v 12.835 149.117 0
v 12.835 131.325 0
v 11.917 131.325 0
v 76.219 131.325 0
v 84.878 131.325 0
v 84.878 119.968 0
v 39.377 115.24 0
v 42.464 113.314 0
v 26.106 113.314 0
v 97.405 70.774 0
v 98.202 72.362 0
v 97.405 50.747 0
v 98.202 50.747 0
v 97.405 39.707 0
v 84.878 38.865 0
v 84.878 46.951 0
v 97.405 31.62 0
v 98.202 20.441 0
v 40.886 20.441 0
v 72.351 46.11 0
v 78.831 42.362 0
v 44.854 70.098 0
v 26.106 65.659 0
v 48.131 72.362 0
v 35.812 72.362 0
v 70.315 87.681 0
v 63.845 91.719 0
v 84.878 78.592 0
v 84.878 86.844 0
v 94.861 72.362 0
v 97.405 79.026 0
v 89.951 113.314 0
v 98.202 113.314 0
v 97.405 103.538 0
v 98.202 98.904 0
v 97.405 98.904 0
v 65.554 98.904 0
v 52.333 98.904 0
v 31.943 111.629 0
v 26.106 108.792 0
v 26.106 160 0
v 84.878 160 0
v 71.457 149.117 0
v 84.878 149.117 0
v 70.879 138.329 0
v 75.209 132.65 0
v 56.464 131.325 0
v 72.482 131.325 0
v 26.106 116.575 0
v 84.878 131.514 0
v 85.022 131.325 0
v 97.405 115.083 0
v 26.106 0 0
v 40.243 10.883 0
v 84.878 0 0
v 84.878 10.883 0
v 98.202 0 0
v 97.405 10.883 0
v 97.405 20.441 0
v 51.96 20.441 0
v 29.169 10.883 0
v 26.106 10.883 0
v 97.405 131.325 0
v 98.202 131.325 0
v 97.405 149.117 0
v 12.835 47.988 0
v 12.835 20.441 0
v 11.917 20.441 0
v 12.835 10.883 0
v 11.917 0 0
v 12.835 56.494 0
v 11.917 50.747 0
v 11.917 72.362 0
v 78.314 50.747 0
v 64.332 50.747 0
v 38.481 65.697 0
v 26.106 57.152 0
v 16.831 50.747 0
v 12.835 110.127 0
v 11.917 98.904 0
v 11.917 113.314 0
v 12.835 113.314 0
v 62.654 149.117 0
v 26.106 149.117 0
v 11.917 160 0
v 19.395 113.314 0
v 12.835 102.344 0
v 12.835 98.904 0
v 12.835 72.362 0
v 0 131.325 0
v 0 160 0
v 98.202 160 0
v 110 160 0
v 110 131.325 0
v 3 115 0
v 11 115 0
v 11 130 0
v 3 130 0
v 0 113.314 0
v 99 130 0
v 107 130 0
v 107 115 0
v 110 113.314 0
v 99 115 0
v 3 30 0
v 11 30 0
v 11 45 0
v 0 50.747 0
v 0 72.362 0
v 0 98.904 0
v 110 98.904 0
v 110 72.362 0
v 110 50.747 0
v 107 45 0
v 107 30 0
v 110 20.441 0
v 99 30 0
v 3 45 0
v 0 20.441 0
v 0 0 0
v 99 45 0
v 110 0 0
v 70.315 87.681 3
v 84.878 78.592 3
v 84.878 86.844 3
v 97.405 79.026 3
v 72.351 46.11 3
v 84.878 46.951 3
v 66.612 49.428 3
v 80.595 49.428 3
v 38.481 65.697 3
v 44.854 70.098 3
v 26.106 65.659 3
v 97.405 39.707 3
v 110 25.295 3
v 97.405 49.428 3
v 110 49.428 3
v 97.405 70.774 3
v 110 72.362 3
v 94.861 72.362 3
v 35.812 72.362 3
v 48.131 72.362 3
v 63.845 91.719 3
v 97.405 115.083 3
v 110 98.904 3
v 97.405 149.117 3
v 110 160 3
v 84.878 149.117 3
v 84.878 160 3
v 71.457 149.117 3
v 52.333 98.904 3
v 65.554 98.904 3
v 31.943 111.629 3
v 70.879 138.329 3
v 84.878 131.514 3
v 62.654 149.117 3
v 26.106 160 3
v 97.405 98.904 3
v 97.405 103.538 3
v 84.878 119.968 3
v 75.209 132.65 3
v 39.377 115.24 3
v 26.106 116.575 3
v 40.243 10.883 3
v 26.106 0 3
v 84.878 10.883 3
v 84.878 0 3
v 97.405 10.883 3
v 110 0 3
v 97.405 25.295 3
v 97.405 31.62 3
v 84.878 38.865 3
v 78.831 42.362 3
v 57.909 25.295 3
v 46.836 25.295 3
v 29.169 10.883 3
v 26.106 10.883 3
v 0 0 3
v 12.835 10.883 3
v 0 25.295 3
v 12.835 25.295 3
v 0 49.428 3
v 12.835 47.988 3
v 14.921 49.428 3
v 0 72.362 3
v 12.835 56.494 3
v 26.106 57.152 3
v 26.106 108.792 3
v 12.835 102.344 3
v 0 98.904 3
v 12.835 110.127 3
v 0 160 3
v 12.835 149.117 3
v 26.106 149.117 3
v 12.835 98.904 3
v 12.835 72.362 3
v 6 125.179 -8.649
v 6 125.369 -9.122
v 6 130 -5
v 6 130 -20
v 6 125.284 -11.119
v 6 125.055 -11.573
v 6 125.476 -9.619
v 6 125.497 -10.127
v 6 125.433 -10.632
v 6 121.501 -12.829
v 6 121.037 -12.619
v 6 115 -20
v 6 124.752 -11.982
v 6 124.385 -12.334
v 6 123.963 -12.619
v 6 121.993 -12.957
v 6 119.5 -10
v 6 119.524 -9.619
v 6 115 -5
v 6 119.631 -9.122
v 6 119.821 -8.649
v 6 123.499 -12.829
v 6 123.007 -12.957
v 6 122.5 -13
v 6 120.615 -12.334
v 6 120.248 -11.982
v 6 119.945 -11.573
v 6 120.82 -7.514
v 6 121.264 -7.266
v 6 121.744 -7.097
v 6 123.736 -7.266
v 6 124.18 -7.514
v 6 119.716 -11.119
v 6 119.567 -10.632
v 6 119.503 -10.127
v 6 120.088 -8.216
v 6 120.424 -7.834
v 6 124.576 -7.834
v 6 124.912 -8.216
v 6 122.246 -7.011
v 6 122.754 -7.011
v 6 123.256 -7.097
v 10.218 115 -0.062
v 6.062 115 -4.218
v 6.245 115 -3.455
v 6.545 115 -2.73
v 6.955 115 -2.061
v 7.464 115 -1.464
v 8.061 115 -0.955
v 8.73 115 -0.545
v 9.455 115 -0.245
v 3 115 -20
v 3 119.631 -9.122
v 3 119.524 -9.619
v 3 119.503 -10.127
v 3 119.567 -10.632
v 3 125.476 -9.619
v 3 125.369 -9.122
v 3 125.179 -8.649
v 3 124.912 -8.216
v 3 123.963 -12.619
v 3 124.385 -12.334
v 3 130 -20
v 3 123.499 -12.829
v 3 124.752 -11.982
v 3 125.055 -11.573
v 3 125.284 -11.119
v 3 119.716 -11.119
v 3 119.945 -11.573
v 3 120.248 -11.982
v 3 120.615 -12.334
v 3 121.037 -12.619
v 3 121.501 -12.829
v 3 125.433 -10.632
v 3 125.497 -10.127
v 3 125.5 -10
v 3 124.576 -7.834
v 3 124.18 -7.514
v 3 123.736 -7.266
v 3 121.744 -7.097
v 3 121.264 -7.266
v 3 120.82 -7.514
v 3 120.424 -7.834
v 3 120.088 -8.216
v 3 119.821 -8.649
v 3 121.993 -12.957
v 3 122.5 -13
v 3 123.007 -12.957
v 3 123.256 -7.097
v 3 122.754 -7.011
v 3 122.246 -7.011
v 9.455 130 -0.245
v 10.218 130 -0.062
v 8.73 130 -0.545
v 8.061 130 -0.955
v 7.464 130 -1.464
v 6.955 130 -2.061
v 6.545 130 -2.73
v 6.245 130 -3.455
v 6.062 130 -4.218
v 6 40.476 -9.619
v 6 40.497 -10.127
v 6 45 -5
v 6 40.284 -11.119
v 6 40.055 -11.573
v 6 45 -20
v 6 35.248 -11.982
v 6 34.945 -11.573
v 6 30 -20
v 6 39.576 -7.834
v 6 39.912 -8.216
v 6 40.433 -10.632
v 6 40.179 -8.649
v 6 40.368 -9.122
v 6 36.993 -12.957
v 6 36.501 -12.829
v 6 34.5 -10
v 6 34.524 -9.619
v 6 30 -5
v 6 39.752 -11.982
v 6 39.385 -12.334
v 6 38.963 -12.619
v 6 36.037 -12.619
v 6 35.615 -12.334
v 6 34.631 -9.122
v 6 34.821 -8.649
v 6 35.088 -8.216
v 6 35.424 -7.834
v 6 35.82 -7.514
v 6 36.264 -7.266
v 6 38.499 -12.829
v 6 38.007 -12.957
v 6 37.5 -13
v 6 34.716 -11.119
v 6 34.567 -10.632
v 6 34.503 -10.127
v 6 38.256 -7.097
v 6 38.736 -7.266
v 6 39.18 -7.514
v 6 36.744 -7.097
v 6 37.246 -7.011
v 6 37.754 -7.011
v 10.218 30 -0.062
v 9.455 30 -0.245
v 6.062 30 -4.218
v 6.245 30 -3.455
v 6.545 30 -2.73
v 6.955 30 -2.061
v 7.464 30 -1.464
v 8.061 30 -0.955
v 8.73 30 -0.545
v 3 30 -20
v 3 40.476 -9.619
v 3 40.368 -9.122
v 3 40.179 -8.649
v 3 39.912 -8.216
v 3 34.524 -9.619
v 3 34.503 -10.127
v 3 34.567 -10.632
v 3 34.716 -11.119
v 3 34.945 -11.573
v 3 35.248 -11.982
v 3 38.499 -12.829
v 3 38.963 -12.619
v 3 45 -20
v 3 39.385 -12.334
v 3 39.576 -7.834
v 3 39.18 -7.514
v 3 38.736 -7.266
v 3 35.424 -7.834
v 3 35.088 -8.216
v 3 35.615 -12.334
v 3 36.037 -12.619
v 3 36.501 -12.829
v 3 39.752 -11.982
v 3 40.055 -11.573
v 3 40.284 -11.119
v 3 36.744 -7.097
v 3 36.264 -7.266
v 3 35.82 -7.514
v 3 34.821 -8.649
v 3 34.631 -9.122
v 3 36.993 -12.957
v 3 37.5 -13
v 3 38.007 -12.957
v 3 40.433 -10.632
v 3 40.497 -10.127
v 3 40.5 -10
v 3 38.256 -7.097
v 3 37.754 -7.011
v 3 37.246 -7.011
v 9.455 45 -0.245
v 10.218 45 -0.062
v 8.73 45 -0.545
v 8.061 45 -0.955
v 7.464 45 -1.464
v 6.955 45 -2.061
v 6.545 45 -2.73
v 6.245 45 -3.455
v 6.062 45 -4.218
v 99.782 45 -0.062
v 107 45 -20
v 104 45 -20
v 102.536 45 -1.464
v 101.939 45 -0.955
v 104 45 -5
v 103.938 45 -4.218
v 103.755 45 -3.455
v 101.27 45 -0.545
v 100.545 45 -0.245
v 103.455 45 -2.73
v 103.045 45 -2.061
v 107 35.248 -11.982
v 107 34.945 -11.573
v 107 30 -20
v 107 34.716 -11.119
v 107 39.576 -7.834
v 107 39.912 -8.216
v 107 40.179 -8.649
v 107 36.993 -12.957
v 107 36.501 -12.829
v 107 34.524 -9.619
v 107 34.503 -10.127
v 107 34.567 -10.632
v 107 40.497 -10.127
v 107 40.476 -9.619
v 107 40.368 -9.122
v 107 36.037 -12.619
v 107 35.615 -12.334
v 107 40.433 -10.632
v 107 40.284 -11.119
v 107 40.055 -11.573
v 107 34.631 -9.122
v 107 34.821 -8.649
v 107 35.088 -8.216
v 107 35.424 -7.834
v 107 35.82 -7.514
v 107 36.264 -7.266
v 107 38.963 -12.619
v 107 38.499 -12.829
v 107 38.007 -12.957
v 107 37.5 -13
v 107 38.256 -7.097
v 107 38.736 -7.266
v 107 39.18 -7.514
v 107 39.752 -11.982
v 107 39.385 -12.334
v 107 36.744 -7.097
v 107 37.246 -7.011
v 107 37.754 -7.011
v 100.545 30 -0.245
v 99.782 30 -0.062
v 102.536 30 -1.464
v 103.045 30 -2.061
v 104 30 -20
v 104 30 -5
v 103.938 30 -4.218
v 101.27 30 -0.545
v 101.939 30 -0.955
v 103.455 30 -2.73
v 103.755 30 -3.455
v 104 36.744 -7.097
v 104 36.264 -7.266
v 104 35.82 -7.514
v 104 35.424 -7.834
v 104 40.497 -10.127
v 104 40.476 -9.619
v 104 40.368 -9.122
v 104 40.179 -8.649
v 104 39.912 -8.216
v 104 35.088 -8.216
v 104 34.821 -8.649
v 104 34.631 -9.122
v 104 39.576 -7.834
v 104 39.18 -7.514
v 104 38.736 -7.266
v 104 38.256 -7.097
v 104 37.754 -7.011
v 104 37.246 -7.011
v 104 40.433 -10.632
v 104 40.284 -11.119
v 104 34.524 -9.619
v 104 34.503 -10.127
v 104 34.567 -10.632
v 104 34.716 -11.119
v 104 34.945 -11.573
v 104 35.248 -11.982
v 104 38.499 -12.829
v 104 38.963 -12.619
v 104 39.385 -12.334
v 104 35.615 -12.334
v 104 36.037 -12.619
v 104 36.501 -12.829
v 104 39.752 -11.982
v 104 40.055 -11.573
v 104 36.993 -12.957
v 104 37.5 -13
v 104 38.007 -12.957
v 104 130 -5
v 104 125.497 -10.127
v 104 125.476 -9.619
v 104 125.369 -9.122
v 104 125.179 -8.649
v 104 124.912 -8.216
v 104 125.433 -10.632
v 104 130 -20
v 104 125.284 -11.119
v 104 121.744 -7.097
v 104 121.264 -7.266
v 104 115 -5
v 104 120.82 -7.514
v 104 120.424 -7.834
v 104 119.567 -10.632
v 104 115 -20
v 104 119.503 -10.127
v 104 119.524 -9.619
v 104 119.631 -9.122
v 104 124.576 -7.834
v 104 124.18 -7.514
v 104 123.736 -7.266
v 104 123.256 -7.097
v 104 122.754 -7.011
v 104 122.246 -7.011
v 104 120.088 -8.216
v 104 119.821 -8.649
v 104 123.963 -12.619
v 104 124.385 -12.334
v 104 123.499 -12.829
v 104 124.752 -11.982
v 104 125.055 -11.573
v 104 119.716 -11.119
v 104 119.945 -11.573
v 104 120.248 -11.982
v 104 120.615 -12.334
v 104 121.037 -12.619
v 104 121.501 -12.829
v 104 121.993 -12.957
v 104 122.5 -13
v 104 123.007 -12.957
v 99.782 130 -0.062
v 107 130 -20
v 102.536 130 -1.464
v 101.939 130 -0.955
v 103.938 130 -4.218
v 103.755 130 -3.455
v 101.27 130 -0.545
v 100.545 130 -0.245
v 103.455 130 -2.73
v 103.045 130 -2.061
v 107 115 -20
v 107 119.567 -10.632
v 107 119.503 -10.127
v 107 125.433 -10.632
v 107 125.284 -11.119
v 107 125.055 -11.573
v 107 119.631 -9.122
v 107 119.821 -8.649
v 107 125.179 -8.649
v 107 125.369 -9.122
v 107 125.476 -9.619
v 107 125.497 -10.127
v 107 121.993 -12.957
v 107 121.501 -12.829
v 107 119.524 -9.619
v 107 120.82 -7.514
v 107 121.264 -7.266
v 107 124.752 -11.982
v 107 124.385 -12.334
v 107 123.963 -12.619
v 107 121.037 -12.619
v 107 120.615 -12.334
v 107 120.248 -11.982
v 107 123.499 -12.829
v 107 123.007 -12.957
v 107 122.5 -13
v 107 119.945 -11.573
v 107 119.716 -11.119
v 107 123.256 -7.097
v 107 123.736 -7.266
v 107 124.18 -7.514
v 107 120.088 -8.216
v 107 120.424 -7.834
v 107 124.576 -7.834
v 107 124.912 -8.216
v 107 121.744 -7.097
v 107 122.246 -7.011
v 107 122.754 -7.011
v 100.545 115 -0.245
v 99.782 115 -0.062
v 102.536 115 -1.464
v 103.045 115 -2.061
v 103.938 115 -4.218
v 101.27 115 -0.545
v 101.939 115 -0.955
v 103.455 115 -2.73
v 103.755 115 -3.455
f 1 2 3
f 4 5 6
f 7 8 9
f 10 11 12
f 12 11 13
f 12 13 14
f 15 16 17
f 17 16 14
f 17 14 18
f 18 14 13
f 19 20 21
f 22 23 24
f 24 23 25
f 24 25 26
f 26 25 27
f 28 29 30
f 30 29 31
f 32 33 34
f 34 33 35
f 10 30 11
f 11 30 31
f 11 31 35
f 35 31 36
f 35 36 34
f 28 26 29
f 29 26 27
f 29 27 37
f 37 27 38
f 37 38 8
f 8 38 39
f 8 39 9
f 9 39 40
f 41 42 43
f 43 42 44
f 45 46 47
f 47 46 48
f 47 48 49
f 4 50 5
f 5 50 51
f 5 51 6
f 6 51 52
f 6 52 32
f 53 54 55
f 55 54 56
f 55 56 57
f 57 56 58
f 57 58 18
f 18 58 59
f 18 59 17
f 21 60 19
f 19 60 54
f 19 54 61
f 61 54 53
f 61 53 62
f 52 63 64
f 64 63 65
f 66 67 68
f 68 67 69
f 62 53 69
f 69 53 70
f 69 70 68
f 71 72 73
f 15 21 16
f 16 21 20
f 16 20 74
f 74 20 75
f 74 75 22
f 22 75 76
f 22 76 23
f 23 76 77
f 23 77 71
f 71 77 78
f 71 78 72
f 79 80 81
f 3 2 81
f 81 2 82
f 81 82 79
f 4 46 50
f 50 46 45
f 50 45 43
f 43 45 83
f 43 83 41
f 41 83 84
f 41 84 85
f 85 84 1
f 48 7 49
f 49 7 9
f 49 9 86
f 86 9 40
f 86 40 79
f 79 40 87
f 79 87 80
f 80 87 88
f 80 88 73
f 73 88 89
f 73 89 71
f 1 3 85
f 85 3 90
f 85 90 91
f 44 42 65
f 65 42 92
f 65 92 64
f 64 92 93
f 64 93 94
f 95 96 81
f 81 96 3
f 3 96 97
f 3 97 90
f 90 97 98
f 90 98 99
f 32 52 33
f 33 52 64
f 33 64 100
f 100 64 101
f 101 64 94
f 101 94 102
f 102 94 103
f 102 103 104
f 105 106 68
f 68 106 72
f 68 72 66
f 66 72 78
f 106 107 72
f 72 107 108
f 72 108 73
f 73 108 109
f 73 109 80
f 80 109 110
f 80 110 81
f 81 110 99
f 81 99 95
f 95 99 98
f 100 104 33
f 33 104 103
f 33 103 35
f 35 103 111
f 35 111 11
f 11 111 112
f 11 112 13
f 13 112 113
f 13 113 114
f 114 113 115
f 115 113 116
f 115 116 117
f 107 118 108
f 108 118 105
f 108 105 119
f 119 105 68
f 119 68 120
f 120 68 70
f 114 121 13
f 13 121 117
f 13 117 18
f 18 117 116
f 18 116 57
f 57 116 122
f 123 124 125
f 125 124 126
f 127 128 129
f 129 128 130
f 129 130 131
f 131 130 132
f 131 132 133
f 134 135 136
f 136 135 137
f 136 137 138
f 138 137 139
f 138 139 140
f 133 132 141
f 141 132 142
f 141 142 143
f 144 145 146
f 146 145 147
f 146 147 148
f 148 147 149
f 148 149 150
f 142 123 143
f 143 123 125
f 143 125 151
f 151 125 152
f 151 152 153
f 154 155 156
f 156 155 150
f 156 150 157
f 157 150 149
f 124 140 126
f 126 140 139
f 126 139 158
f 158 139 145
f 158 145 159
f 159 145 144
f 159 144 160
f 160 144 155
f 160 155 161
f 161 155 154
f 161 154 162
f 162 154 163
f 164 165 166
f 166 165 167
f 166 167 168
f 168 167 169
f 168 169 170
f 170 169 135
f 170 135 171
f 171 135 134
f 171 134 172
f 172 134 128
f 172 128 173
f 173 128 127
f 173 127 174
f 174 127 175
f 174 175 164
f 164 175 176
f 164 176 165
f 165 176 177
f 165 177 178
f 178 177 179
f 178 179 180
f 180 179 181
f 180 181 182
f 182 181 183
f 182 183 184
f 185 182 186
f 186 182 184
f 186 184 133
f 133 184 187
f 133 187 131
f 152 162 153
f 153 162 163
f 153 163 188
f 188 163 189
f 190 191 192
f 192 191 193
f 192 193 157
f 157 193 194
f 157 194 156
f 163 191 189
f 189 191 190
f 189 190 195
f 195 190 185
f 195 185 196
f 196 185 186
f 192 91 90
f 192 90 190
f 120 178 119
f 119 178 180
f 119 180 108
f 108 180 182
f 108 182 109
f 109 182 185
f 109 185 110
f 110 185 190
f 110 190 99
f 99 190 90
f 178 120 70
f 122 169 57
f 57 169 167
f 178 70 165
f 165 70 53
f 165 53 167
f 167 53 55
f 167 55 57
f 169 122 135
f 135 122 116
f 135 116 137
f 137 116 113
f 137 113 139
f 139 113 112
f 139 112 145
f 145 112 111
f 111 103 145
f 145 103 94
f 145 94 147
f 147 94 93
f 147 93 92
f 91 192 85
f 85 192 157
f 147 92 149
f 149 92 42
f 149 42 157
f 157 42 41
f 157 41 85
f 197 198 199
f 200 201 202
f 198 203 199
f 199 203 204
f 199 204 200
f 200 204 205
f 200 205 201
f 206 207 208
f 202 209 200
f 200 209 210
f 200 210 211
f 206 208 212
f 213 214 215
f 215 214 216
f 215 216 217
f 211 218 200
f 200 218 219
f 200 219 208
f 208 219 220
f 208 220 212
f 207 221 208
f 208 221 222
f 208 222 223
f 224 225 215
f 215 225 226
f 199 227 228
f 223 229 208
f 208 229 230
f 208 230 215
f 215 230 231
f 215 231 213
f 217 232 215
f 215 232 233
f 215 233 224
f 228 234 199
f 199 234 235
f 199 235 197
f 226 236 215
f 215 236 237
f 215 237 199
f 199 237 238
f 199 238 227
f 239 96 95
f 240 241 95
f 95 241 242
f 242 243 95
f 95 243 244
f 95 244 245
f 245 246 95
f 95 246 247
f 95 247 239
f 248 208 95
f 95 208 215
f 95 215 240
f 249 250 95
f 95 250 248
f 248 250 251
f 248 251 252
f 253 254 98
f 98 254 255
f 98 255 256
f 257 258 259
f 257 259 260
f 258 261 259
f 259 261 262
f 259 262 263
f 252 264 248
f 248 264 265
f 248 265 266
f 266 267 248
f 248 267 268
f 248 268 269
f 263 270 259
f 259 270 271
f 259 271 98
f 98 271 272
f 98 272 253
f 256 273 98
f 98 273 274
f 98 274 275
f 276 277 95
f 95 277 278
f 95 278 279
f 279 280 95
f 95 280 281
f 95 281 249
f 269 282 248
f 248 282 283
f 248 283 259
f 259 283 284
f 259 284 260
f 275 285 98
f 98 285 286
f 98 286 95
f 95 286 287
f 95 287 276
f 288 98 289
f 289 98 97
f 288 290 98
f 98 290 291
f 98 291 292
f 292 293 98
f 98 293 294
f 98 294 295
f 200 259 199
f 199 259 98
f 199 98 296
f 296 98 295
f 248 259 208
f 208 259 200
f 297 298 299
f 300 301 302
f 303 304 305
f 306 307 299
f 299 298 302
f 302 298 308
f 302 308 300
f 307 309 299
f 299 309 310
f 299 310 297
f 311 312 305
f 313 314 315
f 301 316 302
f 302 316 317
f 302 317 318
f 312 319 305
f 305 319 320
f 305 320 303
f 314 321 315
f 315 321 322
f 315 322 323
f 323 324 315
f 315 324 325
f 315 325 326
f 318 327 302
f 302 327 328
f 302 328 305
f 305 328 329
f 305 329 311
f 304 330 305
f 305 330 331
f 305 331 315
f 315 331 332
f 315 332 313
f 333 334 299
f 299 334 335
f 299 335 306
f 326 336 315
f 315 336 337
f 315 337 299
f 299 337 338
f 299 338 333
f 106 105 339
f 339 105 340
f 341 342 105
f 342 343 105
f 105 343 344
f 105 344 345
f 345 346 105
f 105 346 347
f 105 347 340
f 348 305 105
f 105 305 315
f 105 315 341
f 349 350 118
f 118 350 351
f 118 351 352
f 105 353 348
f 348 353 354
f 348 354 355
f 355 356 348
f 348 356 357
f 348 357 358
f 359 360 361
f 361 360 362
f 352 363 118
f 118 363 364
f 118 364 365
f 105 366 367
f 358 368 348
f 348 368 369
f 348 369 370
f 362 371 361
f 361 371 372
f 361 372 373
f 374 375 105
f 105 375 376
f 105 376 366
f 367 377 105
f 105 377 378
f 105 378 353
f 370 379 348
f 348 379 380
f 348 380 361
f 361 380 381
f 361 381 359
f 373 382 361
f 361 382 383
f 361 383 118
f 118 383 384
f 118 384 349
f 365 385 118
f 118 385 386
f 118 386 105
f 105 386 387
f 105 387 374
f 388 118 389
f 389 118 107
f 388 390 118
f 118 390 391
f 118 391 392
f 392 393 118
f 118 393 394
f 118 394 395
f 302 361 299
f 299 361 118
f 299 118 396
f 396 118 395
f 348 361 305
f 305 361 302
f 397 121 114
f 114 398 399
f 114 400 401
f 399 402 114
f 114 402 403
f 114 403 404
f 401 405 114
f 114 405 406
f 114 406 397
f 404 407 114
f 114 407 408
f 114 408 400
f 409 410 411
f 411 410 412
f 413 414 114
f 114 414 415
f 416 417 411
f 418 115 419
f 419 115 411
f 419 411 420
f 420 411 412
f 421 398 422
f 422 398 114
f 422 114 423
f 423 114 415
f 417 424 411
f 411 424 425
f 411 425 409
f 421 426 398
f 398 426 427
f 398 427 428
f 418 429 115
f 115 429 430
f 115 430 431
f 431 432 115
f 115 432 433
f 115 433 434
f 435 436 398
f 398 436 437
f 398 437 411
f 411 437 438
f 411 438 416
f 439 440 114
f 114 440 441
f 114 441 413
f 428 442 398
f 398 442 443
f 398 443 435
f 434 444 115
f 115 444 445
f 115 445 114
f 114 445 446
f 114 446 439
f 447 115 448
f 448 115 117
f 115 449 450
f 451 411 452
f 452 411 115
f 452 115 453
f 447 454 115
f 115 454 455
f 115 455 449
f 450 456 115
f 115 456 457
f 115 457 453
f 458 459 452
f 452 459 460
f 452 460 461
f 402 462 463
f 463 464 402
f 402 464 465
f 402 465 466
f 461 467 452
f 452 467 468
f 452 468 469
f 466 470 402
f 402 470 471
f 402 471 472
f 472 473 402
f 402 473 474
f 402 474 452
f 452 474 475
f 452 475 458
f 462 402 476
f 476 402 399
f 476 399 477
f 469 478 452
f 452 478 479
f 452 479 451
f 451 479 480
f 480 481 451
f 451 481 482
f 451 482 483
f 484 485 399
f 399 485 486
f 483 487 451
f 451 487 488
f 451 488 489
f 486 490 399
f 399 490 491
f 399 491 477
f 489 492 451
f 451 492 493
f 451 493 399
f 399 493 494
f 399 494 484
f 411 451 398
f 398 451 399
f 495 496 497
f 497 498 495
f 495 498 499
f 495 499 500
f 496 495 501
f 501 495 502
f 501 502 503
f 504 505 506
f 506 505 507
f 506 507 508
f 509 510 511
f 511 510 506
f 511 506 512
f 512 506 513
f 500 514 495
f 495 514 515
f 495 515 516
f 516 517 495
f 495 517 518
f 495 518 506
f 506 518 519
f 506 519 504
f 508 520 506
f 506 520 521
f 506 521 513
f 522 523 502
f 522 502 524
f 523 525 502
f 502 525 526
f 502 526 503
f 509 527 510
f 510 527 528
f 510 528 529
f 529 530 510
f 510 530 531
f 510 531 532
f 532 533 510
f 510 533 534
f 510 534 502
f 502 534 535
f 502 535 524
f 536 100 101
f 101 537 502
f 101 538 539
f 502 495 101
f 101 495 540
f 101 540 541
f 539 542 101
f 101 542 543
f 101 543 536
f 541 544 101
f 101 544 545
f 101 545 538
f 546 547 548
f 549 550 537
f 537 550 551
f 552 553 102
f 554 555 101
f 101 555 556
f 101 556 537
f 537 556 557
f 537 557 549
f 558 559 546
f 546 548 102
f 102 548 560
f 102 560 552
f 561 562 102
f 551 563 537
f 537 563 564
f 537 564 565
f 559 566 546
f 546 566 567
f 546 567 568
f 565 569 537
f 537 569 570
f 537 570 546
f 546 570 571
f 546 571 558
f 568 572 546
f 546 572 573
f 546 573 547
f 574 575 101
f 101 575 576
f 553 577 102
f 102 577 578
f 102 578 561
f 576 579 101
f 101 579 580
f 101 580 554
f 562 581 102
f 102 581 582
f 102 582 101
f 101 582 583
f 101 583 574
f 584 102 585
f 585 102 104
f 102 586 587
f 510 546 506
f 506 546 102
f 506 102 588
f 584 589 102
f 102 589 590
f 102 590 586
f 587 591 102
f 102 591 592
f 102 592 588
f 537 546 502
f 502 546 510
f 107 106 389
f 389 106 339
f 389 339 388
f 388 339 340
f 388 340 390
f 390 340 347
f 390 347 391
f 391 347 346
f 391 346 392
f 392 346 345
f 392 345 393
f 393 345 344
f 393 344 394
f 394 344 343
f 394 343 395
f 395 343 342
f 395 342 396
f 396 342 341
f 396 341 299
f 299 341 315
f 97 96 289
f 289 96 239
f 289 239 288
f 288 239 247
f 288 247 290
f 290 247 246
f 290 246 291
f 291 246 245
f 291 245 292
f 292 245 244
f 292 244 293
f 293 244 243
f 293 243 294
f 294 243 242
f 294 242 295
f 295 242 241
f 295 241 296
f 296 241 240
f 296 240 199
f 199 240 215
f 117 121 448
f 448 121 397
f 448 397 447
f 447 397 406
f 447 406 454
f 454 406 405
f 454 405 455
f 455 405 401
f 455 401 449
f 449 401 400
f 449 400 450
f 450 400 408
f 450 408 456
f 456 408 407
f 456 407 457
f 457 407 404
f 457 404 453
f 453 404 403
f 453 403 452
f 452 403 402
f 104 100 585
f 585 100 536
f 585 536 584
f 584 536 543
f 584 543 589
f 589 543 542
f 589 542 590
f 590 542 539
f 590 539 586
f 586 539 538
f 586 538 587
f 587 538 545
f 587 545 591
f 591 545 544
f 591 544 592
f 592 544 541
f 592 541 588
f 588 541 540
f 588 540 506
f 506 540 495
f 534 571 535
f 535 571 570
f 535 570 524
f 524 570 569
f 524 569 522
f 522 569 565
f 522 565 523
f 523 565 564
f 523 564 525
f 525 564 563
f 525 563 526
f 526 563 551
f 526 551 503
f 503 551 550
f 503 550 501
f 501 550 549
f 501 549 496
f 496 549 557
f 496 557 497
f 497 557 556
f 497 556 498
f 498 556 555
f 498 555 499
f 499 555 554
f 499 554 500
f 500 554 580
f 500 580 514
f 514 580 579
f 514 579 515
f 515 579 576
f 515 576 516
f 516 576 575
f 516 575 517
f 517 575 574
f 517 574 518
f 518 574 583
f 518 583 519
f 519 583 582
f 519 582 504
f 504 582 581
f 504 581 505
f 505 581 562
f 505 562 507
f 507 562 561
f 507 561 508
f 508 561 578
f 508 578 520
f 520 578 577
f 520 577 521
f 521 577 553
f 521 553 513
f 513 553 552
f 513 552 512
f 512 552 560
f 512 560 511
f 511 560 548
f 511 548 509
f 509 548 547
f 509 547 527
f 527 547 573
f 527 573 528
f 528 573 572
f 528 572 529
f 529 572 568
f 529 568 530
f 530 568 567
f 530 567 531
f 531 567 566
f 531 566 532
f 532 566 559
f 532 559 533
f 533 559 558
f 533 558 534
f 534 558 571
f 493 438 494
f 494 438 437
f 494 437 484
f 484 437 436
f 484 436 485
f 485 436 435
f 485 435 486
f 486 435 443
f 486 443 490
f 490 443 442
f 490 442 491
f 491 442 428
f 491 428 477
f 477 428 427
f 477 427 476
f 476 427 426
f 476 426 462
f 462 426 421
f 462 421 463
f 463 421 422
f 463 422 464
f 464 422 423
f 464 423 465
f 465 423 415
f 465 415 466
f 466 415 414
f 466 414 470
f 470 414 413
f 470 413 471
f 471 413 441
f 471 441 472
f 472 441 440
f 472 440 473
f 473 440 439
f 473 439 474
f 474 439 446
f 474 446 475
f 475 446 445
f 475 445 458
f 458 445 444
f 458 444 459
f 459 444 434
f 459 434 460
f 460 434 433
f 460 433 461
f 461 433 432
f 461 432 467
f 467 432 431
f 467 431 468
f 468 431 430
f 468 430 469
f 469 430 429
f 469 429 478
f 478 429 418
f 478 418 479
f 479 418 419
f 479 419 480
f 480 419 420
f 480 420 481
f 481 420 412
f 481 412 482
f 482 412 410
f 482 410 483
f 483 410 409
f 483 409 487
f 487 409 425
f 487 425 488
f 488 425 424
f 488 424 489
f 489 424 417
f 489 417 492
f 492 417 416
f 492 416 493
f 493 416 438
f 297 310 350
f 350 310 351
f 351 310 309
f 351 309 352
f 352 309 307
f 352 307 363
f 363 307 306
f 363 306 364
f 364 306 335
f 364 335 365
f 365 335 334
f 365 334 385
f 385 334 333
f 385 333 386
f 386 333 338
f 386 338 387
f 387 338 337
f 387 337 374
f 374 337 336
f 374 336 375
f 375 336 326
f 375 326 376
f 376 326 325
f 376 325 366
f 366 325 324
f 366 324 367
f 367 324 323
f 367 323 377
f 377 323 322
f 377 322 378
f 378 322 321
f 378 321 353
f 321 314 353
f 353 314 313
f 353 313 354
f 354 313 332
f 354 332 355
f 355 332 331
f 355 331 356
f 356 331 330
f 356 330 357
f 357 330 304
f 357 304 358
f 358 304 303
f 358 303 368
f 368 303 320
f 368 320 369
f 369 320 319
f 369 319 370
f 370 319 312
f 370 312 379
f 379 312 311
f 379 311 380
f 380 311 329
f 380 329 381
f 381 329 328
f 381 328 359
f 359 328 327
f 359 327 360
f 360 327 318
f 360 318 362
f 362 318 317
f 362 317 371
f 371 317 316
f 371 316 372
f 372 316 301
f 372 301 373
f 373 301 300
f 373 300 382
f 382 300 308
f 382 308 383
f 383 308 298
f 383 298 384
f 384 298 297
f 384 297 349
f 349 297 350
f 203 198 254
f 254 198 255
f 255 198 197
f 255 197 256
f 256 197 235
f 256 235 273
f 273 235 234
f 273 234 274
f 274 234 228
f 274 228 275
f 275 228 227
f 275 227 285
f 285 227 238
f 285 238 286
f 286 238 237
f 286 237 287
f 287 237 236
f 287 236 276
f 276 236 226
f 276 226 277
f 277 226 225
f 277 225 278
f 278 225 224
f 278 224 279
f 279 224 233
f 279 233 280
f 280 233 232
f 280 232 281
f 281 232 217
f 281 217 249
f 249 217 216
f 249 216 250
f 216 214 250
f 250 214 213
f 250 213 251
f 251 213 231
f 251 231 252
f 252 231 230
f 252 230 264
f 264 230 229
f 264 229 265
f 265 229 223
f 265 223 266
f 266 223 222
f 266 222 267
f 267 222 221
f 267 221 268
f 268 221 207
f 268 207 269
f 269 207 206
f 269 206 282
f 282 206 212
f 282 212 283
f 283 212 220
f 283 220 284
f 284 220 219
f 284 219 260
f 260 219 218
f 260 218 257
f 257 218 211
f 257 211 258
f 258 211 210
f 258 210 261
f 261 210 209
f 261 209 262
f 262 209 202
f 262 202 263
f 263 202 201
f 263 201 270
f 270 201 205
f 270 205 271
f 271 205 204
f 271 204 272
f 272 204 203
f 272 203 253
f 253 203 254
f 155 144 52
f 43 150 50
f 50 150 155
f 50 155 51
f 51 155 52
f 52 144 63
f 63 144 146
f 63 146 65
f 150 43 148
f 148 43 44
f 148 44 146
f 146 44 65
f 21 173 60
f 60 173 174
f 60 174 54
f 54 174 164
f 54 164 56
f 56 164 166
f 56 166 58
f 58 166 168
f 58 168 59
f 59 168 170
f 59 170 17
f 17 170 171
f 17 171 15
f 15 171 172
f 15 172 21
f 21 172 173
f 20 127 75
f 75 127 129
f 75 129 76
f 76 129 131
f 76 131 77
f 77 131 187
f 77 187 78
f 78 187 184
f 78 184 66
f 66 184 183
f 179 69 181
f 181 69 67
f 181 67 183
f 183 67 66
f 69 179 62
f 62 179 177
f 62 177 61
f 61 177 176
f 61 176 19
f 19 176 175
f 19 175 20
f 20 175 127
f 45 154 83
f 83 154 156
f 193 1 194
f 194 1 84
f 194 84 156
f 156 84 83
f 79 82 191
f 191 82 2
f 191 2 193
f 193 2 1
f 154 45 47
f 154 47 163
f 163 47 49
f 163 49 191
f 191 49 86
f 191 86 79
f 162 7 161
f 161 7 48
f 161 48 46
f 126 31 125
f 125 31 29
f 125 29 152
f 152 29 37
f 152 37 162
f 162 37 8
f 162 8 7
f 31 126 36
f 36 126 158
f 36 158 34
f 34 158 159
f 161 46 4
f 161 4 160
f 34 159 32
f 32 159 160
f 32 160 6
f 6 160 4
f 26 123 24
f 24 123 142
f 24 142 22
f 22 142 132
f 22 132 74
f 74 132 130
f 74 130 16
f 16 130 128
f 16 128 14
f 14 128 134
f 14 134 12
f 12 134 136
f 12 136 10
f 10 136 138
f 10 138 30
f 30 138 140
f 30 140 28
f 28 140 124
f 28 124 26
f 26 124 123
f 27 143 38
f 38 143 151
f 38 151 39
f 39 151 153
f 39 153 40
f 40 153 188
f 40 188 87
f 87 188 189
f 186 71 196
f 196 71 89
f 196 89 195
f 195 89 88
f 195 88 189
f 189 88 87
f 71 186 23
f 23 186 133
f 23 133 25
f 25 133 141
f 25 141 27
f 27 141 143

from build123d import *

# Parameters (mm, degrees)
SKETCH1_W           = 110
SKETCH1_H           = 160
BOSS_EXTRUDE1_DEPTH = 3
SKETCH2_W           = 3
SKETCH2_H           = 15
BOSS_EXTRUDE2_DEPTH = 20
FILLET1_R           = 5
SKETCH3_R           = 3
CUT_EXTRUDE1_DEPTH  = 120
CUT_EXTRUDE2_DEPTH  = 10


with BuildPart() as part:
    # Sketch1 → Boss-Extrude1 (new body)
    with BuildSketch(Plane.XY):
        with Locations((55, 80)):
            Rectangle(SKETCH1_W, SKETCH1_H)
    extrude(amount=BOSS_EXTRUDE1_DEPTH)

    # Sketch2 → Boss-Extrude2 (add)
    with BuildSketch(Plane(origin=(0, 0, 0), x_dir=(-1, 0, 0), z_dir=(0, 0, -1))):
        with Locations((-4.5, 122.5)):
            Rectangle(SKETCH2_W, SKETCH2_H)
        with Locations((-4.5, 37.5)):
            Rectangle(SKETCH2_W, SKETCH2_H)
        with Locations((-105.5, 37.5)):
            Rectangle(SKETCH2_W, SKETCH2_H)
        with Locations((-105.5, 122.5)):
            Rectangle(SKETCH2_W, SKETCH2_H)
    extrude(amount=BOSS_EXTRUDE2_DEPTH)

    # Fillet1
    fillet1_edges = [part.edges().sort_by_distance(p)[0] for p in [
        (6, 122.5, 0),
        (6, 37.5, 0),
        (104, 37.5, 0),
        (104, 122.5, 0),
    ]]
    fillet(fillet1_edges, radius=FILLET1_R)

    # Sketch3 → Cut-Extrude1 (cut)
    with BuildSketch(Plane(origin=(107, 0, 0), x_dir=(0, 0, -1), z_dir=(1, 0, 0))):
        with Locations((10, 122.5)):
            Circle(SKETCH3_R)
        with Locations((10, 37.5)):
            Circle(SKETCH3_R)
    extrude(amount=-CUT_EXTRUDE1_DEPTH, mode=Mode.SUBTRACT)

    # Sketch4 → Cut-Extrude2 (cut)
    with BuildSketch(Plane(origin=(0, 0, 0), x_dir=(-1, 0, 0), z_dir=(0, 0, -1))):
        Polygon((-97.404603448, 115.083332467), (-71.456820791, 149.11710788), (-97.404603448, 149.11710788), align=None)
        Polygon((-39.377270954, 115.240473699), (-75.208928564, 132.650284128), (-97.404603448, 103.53786924), (-97.404603448, 79.025613644), align=None)
        Polygon((-12.834970583, 149.11710788), (-62.654412981, 149.11710788), (-70.879295193, 138.329141999), (-12.834970583, 110.126687653), align=None)
        Polygon((-12.834970583, 56.494500283), (-12.834970583, 102.344156626), (-31.943432736, 111.628536023), (-63.844562164, 91.719040132), align=None)
        Polygon((-70.31535921, 87.68061549), (-97.404603448, 70.774217299), (-97.404603448, 39.706571637), (-44.85383039, 70.098223458), align=None)
        Polygon((-78.83079022, 42.362019492), (-97.404603448, 31.620239081), (-97.404603448, 10.88289212), (-40.243023437, 10.88289212), align=None)
        Polygon((-12.834970583, 10.88289212), (-12.834970583, 47.98768369), (-38.481002615, 65.697483931), (-72.350817961, 46.109577315), (-29.169217126, 10.88289212), align=None)
    extrude(amount=-CUT_EXTRUDE2_DEPTH, mode=Mode.SUBTRACT)


solid = part.part
